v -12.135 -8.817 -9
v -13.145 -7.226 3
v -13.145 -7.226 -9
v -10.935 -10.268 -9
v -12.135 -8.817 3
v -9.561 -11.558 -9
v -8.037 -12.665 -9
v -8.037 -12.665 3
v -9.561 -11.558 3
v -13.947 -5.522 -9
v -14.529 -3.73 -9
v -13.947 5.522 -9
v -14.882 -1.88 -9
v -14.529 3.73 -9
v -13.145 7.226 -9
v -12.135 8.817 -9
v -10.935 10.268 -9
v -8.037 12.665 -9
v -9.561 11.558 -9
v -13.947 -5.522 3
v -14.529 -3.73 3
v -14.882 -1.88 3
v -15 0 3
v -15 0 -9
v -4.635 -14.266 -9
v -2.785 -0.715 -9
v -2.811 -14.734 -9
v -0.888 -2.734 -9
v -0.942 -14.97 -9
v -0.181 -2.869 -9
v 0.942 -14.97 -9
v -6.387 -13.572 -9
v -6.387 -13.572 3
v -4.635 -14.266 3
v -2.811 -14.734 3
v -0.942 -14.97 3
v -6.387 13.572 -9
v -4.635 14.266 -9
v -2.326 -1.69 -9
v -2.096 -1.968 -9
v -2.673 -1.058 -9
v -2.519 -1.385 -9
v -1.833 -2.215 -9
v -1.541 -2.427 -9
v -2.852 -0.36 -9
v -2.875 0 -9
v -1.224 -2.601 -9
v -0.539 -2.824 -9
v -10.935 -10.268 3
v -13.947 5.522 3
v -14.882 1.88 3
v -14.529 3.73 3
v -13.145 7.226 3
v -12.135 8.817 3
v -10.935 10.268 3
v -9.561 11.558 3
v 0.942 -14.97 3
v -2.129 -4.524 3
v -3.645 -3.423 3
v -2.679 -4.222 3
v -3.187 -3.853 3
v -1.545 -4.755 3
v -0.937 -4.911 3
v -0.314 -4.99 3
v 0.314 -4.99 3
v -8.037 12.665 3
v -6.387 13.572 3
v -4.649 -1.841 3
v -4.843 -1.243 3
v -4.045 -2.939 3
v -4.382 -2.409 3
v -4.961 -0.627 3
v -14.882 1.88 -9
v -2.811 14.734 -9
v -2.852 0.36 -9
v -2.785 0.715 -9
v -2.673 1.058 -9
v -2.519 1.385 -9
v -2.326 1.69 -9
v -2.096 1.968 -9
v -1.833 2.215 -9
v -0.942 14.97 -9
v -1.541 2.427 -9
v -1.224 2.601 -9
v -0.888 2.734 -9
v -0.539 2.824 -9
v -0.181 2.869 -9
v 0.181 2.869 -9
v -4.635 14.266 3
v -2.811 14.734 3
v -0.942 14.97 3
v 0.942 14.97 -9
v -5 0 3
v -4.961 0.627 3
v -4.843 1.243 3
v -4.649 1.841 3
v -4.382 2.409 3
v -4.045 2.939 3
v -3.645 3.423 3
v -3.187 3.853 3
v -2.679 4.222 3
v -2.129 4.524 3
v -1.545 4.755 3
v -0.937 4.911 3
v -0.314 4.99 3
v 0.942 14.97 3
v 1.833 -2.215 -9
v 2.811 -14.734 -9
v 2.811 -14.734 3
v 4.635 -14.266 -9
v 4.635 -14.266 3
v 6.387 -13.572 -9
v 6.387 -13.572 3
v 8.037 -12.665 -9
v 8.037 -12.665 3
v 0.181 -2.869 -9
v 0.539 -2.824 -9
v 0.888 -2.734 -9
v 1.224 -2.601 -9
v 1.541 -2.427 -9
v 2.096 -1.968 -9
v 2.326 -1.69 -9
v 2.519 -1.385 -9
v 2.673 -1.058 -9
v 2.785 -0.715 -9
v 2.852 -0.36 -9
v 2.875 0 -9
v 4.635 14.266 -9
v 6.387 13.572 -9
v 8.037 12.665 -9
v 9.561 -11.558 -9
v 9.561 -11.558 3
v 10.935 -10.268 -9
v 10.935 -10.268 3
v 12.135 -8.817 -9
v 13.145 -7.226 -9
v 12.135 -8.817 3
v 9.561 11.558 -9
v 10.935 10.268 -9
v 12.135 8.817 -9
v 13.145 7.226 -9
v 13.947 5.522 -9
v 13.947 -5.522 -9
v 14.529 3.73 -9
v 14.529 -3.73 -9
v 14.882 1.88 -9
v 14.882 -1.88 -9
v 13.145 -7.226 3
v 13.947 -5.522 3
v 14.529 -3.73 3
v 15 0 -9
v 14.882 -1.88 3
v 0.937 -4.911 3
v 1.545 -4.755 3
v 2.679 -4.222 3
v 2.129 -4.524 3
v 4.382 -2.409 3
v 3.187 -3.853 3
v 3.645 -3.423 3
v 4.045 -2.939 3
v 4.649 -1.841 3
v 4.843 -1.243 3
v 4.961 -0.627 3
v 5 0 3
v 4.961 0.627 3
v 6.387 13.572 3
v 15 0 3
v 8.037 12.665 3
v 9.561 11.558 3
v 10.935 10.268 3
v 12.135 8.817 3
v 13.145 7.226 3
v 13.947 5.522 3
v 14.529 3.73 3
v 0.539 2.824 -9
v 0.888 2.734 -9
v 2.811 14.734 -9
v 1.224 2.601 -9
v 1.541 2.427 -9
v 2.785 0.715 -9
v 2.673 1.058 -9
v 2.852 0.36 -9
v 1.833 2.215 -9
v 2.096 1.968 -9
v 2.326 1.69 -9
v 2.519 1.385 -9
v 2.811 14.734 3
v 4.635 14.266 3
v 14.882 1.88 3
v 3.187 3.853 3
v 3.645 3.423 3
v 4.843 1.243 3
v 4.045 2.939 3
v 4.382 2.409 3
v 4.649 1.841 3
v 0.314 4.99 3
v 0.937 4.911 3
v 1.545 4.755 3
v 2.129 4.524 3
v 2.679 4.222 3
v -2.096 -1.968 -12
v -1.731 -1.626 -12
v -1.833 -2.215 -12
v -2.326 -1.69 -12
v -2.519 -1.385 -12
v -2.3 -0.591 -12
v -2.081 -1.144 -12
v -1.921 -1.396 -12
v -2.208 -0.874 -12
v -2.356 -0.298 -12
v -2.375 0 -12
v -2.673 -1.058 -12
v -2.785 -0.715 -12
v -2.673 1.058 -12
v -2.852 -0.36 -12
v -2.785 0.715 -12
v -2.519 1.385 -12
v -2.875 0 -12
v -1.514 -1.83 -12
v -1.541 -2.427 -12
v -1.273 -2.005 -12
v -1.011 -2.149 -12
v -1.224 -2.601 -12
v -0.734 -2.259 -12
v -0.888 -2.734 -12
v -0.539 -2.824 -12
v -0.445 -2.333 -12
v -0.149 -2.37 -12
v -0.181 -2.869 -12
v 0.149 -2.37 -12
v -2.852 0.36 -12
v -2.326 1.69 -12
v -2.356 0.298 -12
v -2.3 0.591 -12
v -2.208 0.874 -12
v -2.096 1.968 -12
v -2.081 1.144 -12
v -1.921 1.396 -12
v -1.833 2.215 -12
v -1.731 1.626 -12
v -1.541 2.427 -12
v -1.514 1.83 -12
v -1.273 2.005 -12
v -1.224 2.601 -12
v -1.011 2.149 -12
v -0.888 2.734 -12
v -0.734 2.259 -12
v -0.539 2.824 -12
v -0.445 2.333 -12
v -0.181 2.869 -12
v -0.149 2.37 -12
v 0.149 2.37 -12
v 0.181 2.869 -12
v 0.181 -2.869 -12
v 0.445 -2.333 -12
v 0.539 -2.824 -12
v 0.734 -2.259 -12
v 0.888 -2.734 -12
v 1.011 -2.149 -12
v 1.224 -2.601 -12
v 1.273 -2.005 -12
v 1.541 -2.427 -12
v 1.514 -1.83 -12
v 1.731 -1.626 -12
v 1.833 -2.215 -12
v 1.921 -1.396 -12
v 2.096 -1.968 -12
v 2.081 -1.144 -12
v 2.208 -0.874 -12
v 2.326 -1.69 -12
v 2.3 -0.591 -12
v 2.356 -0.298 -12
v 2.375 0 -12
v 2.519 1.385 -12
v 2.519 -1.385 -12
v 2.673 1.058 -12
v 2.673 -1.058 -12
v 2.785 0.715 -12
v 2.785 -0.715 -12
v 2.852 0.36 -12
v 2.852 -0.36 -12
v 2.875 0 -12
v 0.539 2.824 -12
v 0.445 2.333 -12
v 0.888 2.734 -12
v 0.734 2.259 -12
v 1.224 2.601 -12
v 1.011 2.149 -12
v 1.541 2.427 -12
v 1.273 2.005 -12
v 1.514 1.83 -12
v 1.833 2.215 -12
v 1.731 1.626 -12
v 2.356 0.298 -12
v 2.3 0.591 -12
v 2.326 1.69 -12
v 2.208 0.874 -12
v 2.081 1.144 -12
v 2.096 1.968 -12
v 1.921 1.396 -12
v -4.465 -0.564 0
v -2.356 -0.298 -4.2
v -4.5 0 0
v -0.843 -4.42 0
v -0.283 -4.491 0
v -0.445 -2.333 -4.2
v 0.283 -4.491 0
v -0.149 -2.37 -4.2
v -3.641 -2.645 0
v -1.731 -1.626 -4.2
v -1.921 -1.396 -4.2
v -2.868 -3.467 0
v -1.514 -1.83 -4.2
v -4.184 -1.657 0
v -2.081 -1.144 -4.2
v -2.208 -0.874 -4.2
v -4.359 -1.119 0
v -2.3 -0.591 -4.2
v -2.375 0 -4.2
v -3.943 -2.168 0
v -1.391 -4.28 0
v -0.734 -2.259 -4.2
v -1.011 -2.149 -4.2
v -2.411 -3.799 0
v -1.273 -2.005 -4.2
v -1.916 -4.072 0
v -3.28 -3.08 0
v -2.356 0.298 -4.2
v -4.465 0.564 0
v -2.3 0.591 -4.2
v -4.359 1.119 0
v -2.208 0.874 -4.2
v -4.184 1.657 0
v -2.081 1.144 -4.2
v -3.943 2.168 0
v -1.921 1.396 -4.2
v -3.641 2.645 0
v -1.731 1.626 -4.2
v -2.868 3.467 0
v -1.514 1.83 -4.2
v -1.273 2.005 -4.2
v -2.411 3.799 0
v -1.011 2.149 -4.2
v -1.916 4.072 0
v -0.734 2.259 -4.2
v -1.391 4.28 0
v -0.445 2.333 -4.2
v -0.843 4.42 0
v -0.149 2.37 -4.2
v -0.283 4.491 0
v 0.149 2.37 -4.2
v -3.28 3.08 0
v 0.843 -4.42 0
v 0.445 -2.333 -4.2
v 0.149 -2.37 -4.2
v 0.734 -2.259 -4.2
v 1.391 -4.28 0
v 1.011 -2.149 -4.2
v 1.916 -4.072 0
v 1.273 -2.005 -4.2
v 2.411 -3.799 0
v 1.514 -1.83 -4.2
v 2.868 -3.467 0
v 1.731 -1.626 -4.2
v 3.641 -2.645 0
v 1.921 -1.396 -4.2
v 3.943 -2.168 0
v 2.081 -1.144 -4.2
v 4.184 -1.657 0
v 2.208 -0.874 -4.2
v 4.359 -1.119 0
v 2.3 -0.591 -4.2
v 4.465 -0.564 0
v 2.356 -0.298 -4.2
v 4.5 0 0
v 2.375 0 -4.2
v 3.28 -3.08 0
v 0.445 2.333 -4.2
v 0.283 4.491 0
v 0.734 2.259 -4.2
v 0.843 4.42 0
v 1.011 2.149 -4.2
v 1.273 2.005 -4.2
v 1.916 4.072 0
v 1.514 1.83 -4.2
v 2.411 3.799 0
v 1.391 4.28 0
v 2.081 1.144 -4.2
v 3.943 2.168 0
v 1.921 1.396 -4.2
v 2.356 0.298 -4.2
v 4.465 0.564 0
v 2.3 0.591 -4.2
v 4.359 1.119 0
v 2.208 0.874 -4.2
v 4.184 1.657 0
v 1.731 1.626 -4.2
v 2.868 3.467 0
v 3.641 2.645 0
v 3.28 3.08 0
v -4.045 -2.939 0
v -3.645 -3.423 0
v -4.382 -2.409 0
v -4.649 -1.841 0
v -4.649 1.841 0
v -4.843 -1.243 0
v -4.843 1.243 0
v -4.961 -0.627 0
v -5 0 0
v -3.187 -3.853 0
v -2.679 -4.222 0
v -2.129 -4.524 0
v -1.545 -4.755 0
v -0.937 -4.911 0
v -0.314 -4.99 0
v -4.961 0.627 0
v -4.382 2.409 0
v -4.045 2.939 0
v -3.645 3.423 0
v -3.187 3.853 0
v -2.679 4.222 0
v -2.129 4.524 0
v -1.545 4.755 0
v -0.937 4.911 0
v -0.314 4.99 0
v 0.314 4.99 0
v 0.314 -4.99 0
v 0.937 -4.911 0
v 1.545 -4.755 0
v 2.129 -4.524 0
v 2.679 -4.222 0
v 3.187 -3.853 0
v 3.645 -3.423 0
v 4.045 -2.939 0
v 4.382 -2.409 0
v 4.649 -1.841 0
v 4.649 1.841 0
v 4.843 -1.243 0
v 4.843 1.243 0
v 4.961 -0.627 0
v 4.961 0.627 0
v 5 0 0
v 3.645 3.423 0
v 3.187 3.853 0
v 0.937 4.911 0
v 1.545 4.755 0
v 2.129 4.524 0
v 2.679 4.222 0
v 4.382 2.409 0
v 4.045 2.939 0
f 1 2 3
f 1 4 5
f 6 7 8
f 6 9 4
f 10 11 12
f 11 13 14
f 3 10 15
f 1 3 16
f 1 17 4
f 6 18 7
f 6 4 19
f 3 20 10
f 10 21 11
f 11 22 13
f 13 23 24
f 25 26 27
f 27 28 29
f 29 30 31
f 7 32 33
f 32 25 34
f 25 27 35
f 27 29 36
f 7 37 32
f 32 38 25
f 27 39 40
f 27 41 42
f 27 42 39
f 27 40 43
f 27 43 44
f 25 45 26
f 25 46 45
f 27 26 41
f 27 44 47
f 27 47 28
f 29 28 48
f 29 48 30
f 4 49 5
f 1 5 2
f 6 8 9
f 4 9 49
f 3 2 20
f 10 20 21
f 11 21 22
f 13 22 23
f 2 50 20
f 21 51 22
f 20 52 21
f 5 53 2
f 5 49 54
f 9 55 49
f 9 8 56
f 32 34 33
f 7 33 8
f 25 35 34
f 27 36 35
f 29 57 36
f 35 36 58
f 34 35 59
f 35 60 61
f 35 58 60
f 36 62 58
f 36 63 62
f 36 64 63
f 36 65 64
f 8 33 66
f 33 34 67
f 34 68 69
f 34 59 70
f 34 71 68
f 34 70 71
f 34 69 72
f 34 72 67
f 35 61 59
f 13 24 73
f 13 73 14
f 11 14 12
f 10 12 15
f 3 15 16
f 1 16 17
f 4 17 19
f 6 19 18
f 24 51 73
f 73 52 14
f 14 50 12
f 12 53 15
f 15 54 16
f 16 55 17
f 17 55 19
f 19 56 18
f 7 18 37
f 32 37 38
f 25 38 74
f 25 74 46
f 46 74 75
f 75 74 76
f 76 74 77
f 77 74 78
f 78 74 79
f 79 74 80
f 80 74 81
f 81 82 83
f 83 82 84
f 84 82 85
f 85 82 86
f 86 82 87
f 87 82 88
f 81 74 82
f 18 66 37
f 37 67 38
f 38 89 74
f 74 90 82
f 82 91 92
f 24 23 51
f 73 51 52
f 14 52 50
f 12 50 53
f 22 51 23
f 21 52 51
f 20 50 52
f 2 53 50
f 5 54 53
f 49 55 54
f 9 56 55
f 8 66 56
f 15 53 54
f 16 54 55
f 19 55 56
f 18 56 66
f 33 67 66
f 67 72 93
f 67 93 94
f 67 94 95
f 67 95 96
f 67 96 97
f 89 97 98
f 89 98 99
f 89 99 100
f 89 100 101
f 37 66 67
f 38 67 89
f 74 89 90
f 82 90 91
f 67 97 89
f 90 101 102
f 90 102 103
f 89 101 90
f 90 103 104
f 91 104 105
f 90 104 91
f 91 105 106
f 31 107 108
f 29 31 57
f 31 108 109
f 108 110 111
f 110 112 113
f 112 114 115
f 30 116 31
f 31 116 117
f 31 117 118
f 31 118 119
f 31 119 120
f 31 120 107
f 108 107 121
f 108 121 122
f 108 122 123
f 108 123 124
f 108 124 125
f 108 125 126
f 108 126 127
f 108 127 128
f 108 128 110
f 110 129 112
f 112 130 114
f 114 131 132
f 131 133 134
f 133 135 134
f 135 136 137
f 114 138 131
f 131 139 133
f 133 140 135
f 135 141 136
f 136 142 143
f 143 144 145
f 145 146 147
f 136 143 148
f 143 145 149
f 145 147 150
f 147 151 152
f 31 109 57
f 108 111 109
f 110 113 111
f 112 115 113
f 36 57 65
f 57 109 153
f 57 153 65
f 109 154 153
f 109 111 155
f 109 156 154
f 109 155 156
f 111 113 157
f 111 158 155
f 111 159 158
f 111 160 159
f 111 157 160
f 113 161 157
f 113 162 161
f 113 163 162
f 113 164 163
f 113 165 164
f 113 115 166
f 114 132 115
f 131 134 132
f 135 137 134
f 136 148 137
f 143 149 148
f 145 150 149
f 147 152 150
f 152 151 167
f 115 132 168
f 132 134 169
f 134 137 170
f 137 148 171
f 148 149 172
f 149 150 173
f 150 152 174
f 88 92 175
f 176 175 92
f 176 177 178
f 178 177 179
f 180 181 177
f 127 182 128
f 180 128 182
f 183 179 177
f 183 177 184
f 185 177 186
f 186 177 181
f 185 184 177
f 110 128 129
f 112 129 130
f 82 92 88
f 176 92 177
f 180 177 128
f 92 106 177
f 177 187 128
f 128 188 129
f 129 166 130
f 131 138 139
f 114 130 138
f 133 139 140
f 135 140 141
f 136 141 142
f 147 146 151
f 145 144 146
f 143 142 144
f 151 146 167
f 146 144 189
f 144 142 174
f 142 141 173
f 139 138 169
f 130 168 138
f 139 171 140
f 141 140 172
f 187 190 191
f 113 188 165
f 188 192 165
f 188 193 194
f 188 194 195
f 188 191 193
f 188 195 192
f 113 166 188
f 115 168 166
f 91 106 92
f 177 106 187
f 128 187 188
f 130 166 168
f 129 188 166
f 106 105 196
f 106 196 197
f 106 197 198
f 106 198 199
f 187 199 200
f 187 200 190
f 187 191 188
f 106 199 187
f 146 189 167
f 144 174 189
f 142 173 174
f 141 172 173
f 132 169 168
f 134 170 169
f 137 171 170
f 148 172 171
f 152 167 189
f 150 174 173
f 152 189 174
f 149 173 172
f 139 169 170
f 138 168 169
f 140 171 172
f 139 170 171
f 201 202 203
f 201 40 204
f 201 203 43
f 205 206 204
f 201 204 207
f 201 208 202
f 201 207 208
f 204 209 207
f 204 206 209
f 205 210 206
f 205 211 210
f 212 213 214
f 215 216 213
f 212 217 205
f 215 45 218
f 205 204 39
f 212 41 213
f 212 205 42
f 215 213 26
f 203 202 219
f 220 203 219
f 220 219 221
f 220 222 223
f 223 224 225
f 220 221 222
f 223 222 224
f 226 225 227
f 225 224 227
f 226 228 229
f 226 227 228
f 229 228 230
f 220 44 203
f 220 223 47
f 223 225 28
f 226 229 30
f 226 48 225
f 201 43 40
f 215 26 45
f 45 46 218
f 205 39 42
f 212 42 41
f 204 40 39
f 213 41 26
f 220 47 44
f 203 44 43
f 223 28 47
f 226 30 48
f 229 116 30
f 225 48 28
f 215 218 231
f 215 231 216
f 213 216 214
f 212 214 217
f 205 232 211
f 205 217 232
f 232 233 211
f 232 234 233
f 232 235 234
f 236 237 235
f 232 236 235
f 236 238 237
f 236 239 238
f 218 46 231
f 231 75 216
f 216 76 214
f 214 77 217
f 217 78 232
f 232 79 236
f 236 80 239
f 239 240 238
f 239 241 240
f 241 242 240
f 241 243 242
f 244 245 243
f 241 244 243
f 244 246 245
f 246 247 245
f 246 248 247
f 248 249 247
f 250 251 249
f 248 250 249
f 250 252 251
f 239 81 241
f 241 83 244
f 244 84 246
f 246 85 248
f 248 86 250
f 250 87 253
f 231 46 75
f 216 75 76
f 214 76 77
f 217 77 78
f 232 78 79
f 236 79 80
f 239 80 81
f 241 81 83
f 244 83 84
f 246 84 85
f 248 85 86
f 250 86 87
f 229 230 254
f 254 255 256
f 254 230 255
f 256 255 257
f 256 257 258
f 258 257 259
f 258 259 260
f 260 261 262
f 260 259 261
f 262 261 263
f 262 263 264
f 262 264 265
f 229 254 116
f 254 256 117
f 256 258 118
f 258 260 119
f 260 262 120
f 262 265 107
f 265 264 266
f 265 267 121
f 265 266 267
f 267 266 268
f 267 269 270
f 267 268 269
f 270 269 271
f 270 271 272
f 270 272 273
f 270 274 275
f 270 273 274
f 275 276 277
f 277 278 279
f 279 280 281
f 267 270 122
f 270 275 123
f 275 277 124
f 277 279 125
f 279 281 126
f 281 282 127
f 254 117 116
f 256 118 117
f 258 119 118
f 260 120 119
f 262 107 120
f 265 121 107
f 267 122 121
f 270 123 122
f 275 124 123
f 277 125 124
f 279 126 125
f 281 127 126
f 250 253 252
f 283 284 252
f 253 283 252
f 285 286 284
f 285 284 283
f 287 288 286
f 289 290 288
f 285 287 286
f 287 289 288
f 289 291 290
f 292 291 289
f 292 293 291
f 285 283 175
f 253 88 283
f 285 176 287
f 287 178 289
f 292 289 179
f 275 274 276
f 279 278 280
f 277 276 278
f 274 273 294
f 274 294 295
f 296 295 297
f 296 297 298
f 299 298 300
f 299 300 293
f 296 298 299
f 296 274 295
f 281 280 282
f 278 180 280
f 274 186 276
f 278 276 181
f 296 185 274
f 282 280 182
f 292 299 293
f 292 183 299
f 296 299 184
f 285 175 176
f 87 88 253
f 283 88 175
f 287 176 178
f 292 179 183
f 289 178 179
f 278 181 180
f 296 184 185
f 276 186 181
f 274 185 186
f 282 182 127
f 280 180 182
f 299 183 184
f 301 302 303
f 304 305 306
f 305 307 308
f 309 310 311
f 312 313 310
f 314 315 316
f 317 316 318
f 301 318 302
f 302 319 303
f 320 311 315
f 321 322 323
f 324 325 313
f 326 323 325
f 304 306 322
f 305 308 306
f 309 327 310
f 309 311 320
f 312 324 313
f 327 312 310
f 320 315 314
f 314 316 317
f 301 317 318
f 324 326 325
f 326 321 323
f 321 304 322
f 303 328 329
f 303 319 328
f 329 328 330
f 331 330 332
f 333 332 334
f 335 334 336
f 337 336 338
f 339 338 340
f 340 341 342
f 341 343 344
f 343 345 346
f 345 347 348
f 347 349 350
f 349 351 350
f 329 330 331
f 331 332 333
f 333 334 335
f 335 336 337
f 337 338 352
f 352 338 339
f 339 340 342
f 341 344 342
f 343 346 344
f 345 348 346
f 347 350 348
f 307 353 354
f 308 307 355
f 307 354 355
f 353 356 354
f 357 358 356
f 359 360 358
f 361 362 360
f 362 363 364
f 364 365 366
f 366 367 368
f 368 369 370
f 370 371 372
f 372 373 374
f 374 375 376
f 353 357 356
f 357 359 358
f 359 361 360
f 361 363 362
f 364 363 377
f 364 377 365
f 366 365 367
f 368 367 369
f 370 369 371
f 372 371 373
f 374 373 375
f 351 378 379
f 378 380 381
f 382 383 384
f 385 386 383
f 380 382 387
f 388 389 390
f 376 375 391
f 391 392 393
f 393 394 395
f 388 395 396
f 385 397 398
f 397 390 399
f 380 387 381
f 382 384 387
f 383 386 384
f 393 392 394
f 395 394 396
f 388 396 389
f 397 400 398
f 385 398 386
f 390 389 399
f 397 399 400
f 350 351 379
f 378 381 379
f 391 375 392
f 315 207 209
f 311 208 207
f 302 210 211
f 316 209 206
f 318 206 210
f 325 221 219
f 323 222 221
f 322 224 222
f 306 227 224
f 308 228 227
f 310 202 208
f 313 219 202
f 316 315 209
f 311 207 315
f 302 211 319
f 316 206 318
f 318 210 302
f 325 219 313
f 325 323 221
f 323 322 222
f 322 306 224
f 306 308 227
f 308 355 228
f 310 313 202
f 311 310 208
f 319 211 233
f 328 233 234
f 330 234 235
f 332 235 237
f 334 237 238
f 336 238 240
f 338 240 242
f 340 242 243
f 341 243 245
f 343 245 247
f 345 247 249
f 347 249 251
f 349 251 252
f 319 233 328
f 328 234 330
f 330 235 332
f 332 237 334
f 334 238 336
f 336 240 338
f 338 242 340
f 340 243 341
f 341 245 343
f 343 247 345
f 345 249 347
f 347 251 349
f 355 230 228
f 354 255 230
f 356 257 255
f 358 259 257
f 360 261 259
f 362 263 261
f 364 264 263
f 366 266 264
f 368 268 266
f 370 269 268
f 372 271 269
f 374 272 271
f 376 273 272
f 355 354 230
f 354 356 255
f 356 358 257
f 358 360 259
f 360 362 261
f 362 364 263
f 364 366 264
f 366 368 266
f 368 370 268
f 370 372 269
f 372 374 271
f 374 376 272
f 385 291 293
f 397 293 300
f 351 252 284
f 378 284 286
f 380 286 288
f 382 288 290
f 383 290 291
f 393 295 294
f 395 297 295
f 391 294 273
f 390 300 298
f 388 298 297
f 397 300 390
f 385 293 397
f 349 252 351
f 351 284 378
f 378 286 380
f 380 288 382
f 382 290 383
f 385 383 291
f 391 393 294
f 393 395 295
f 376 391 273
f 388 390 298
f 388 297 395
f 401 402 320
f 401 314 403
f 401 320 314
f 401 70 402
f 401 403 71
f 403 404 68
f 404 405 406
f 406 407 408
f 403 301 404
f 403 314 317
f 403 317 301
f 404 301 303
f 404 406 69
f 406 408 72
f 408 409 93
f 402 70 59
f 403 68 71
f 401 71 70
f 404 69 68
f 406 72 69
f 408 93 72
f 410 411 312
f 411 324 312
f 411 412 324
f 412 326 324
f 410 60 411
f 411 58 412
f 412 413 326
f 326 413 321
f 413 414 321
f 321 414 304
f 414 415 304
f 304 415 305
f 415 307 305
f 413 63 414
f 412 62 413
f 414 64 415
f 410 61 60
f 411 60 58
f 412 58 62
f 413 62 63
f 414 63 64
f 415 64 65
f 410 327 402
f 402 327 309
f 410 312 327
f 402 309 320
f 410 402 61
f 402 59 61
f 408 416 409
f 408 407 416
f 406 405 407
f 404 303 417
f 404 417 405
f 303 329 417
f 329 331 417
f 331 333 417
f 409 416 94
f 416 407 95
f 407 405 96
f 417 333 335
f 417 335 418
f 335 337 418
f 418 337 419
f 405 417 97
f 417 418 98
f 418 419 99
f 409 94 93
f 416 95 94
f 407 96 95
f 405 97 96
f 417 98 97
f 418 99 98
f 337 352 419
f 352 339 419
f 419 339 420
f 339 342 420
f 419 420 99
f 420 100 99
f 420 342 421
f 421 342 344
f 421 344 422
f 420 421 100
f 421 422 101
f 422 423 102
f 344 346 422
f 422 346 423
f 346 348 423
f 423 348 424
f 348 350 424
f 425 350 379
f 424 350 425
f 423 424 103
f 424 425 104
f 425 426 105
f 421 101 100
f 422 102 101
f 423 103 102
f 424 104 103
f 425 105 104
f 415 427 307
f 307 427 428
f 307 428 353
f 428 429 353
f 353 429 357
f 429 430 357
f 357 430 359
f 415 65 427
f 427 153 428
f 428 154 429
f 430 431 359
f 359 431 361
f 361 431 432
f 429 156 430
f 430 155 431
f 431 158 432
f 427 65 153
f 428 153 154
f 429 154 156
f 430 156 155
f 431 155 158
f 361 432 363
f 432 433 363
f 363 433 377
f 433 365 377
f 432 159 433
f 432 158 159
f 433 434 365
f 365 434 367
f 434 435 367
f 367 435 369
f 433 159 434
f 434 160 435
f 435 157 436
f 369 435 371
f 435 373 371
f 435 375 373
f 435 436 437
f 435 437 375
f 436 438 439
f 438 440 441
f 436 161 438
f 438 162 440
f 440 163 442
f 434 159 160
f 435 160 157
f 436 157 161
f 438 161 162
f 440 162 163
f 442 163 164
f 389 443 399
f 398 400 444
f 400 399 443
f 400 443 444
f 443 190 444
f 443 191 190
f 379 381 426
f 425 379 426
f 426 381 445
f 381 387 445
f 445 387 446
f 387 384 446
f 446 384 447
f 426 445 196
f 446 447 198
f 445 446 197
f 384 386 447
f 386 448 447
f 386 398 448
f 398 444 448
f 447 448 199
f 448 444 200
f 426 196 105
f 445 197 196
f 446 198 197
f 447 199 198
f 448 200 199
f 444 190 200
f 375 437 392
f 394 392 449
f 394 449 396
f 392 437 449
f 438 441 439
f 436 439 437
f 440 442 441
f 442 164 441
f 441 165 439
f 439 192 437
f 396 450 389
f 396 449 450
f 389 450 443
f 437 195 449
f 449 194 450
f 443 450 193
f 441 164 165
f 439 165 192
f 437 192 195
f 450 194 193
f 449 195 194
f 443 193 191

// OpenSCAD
$fn = 50;


difference() {
	union() {
		translate(v = [0, 0, -9.0000000000]) {
			cylinder(h = 12, r = 15.0000000000);
		}
		#translate(v = [0, 0, -12.0000000000]) {
			cylinder(h = 12, r = 2.8750000000);
		}
	}
	union() {
		translate(v = [0, 0, 0]) {
			rotate(a = [0, 0, 0]) {
				difference() {
					union() {
						translate(v = [0, 0, -12.0000000000]) {
							cylinder(h = 12, r = 2.2500000000);
						}
						translate(v = [0, 0, -4.2000000000]) {
							cylinder(h = 4.2000000000, r1 = 2.3750000000, r2 = 4.5000000000);
						}
						translate(v = [0, 0, -12.0000000000]) {
							cylinder(h = 12, r = 2.3750000000);
						}
						translate(v = [0, 0, -12.0000000000]) {
							cylinder(h = 12, r = 2.2500000000);
						}
					}
					union();
				}
			}
		}
		#cylinder(h = 3, r = 5.0000000000);
	}
}
